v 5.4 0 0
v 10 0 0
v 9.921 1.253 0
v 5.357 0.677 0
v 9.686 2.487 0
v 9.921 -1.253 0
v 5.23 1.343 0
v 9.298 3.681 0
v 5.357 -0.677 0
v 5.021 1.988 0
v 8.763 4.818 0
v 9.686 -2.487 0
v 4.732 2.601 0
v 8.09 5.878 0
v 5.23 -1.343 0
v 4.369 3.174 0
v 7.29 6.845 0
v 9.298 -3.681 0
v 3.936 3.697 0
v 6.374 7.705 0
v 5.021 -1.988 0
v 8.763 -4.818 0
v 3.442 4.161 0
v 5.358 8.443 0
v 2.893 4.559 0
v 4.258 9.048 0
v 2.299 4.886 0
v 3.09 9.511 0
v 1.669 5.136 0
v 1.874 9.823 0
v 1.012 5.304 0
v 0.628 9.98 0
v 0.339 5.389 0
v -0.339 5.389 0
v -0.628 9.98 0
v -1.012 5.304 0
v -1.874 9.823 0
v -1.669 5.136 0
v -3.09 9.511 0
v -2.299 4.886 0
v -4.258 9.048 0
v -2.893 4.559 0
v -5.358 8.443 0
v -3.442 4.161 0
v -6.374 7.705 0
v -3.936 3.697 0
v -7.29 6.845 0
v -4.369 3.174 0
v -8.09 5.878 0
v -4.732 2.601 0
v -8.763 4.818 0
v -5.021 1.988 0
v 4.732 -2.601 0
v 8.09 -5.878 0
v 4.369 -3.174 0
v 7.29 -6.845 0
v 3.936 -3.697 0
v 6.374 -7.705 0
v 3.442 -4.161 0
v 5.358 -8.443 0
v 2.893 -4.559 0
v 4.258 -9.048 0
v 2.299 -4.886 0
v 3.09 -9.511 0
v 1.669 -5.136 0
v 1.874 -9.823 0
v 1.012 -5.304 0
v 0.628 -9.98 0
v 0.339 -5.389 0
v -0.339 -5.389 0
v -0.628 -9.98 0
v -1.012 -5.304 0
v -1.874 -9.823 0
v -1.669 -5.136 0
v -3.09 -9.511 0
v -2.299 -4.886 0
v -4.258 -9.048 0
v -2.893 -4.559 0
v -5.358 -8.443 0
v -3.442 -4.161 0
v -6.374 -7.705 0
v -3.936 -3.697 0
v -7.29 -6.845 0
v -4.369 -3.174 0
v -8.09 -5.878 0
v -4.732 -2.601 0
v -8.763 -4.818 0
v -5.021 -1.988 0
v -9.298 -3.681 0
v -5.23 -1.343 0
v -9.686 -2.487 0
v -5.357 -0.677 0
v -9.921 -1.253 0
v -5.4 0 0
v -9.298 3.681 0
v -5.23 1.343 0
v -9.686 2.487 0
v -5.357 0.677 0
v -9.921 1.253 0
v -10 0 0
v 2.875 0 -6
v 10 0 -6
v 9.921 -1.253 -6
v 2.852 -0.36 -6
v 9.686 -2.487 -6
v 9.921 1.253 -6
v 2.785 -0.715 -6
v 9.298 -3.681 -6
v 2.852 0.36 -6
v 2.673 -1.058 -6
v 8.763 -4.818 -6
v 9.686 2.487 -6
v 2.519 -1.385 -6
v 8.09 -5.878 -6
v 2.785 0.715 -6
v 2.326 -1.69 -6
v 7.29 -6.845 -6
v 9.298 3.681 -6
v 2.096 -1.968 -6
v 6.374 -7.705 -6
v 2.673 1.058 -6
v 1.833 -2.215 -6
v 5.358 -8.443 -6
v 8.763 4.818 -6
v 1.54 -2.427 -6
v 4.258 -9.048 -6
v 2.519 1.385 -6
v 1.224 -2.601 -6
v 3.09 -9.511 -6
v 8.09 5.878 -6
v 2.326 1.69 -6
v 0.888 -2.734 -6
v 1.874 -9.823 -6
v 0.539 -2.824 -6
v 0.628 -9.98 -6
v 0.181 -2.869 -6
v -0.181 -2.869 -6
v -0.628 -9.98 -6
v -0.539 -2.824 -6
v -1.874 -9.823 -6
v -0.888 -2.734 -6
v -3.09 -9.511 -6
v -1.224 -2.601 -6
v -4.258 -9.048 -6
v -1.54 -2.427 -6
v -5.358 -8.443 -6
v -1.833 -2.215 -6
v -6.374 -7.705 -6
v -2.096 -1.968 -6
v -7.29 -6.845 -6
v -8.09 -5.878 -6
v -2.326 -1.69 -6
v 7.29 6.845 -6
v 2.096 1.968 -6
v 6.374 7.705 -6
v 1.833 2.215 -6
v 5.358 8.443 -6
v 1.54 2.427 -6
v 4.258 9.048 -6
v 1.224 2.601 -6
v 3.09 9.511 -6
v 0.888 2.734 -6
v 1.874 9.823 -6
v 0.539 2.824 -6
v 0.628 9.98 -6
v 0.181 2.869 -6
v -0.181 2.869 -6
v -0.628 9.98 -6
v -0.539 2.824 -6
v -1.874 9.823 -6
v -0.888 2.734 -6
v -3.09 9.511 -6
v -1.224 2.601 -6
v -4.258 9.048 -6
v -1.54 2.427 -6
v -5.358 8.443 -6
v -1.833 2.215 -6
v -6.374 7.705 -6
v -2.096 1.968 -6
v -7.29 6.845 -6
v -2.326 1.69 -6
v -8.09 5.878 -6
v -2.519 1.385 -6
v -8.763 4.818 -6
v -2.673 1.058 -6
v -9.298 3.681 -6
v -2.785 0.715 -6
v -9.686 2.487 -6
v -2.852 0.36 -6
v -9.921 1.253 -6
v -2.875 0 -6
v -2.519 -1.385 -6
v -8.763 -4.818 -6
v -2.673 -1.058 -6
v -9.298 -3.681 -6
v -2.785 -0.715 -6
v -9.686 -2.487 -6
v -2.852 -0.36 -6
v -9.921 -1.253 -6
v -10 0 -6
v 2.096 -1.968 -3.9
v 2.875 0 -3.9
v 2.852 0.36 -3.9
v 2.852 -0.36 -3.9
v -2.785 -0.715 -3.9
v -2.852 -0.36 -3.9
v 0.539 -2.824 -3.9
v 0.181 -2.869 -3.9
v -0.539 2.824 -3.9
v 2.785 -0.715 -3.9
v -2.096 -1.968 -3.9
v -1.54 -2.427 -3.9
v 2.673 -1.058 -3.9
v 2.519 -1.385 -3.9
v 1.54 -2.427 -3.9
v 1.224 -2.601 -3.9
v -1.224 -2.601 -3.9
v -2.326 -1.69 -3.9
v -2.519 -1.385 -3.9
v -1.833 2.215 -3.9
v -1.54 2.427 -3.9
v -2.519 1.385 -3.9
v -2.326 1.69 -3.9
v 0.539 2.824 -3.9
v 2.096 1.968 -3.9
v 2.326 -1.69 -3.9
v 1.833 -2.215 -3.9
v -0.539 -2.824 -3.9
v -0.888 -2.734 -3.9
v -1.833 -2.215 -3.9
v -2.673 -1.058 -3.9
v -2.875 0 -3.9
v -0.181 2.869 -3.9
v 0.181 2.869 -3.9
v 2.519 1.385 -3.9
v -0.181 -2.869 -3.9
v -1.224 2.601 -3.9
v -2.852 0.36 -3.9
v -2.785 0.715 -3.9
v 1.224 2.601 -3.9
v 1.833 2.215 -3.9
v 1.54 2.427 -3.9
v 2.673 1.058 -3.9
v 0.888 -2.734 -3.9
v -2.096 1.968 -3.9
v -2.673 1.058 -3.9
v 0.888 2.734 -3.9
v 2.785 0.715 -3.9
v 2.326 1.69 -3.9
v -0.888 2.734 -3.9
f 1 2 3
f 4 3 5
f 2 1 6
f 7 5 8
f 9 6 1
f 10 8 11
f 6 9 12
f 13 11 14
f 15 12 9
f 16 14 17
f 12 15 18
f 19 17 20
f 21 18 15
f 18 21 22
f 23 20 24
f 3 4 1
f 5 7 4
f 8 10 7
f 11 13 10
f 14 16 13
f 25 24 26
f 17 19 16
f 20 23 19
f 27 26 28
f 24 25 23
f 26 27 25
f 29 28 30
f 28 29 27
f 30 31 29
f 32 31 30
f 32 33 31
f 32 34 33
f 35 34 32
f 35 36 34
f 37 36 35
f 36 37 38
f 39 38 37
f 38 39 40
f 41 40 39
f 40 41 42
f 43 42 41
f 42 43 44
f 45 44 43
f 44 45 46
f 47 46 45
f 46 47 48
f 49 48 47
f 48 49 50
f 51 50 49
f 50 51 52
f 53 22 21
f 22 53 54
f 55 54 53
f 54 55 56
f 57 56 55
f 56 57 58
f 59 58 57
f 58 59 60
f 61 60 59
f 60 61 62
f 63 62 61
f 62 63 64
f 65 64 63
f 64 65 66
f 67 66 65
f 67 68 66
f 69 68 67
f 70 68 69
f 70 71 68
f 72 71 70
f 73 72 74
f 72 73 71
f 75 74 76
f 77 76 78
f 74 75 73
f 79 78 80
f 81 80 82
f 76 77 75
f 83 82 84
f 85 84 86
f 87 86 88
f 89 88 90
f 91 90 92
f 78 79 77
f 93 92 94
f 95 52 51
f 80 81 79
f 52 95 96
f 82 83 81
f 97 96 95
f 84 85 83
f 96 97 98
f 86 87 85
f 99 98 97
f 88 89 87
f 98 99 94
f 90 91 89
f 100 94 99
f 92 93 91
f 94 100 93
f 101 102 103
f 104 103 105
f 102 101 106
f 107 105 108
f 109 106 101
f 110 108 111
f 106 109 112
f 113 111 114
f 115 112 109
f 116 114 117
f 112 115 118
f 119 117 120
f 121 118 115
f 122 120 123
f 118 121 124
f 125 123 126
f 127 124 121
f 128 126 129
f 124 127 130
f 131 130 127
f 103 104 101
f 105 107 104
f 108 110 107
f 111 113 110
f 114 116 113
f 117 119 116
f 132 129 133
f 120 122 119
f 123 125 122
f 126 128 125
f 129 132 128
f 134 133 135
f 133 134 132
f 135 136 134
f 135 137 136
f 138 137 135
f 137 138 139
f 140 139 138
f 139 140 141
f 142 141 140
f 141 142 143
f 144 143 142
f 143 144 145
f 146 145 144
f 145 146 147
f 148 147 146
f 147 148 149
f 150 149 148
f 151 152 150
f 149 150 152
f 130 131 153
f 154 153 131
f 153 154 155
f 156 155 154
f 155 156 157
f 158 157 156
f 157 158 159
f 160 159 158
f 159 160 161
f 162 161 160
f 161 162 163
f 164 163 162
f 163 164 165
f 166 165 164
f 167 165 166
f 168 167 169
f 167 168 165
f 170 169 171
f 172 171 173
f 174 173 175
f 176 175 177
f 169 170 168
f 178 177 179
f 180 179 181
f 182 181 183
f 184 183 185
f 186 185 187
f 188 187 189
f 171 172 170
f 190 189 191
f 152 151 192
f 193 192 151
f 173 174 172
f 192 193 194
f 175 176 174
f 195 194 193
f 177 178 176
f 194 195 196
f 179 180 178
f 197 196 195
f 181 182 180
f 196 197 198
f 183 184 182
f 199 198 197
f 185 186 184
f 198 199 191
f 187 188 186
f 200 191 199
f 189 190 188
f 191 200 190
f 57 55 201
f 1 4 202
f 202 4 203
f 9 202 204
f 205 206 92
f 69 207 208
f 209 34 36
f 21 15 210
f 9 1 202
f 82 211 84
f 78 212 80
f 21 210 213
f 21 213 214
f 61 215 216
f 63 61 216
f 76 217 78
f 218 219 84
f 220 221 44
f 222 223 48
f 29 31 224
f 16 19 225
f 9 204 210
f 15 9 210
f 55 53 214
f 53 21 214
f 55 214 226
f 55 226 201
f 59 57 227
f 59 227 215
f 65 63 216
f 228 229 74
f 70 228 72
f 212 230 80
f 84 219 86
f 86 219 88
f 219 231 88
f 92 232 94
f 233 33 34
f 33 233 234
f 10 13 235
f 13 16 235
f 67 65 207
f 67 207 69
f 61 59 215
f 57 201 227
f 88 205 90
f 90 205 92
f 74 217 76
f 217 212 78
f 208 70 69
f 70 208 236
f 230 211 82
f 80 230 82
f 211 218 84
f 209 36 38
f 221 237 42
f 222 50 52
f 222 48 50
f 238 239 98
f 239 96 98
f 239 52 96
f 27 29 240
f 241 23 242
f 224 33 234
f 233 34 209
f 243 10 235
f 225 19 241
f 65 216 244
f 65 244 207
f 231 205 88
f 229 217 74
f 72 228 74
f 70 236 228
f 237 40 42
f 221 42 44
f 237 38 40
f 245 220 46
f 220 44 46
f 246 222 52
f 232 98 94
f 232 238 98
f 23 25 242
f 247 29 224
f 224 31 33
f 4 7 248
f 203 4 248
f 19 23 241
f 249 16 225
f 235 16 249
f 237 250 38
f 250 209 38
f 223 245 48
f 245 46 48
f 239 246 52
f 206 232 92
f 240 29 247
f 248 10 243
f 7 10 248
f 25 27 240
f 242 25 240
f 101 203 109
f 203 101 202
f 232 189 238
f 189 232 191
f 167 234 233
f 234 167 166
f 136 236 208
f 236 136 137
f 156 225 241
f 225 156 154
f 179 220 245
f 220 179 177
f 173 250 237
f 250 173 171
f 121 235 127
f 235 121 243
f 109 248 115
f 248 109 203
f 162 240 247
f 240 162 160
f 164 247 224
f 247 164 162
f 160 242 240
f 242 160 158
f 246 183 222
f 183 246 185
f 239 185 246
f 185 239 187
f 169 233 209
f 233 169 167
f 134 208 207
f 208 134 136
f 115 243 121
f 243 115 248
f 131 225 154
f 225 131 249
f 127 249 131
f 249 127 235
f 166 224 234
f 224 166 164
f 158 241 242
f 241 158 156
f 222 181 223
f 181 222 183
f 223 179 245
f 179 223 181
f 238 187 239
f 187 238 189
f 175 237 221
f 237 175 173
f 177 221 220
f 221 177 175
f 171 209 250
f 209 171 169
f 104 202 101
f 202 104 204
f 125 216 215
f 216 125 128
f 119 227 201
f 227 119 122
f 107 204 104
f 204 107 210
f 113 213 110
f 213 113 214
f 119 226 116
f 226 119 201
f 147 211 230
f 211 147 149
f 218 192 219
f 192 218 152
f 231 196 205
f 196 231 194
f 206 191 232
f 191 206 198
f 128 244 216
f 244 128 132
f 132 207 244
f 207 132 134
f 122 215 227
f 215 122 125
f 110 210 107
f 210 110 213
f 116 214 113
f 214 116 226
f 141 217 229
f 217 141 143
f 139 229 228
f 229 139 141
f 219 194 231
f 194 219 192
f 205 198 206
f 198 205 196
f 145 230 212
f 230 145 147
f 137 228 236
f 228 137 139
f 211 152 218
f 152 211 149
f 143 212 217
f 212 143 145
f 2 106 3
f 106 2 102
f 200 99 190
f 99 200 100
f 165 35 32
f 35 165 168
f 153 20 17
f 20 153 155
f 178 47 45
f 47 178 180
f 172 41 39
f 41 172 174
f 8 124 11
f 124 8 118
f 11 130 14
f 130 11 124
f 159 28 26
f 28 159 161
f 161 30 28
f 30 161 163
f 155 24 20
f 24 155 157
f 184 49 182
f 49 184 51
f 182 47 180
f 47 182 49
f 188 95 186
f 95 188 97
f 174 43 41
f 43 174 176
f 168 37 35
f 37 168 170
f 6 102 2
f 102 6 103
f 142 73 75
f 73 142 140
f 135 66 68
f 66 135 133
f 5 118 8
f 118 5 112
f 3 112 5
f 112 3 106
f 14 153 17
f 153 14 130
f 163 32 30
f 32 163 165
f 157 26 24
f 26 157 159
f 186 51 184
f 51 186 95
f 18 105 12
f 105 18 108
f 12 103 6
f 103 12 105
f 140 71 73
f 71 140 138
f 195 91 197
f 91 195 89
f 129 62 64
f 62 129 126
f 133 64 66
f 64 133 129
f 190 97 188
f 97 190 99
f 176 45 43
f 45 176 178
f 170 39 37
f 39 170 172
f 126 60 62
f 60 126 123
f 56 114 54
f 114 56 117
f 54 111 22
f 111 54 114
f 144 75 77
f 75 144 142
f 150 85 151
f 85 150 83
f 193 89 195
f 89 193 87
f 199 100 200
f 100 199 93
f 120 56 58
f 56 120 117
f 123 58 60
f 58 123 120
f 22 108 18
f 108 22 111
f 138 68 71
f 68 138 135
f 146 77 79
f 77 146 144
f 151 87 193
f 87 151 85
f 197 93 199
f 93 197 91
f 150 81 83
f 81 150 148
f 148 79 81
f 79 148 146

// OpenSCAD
$fn = 50;


difference() {
	union() {
		translate(v = [0, 0, -6.0000000000]) {
			cylinder(h = 6, r = 10.0000000000);
		}
	}
	union() {
		translate(v = [0, 0, 0]) {
			rotate(a = [0, 0, 0]) {
				difference() {
					union() {
						#translate(v = [0, 0, -6.0000000000]) {
							cylinder(h = 6, r = 2.6000000000);
						}
						#translate(v = [0, 0, -3.9000000000]) {
							cylinder(h = 3.9000000000, r = 10.0000000000, r1 = 2.8750000000, r2 = 5.4000000000);
						}
						#translate(v = [0, 0, -6.0000000000]) {
							cylinder(h = 6, r = 2.8750000000);
						}
						#translate(v = [0, 0, -6.0000000000]) {
							cylinder(h = 6, r = 2.6000000000);
						}
					}
					union();
				}
			}
		}
	}
}
